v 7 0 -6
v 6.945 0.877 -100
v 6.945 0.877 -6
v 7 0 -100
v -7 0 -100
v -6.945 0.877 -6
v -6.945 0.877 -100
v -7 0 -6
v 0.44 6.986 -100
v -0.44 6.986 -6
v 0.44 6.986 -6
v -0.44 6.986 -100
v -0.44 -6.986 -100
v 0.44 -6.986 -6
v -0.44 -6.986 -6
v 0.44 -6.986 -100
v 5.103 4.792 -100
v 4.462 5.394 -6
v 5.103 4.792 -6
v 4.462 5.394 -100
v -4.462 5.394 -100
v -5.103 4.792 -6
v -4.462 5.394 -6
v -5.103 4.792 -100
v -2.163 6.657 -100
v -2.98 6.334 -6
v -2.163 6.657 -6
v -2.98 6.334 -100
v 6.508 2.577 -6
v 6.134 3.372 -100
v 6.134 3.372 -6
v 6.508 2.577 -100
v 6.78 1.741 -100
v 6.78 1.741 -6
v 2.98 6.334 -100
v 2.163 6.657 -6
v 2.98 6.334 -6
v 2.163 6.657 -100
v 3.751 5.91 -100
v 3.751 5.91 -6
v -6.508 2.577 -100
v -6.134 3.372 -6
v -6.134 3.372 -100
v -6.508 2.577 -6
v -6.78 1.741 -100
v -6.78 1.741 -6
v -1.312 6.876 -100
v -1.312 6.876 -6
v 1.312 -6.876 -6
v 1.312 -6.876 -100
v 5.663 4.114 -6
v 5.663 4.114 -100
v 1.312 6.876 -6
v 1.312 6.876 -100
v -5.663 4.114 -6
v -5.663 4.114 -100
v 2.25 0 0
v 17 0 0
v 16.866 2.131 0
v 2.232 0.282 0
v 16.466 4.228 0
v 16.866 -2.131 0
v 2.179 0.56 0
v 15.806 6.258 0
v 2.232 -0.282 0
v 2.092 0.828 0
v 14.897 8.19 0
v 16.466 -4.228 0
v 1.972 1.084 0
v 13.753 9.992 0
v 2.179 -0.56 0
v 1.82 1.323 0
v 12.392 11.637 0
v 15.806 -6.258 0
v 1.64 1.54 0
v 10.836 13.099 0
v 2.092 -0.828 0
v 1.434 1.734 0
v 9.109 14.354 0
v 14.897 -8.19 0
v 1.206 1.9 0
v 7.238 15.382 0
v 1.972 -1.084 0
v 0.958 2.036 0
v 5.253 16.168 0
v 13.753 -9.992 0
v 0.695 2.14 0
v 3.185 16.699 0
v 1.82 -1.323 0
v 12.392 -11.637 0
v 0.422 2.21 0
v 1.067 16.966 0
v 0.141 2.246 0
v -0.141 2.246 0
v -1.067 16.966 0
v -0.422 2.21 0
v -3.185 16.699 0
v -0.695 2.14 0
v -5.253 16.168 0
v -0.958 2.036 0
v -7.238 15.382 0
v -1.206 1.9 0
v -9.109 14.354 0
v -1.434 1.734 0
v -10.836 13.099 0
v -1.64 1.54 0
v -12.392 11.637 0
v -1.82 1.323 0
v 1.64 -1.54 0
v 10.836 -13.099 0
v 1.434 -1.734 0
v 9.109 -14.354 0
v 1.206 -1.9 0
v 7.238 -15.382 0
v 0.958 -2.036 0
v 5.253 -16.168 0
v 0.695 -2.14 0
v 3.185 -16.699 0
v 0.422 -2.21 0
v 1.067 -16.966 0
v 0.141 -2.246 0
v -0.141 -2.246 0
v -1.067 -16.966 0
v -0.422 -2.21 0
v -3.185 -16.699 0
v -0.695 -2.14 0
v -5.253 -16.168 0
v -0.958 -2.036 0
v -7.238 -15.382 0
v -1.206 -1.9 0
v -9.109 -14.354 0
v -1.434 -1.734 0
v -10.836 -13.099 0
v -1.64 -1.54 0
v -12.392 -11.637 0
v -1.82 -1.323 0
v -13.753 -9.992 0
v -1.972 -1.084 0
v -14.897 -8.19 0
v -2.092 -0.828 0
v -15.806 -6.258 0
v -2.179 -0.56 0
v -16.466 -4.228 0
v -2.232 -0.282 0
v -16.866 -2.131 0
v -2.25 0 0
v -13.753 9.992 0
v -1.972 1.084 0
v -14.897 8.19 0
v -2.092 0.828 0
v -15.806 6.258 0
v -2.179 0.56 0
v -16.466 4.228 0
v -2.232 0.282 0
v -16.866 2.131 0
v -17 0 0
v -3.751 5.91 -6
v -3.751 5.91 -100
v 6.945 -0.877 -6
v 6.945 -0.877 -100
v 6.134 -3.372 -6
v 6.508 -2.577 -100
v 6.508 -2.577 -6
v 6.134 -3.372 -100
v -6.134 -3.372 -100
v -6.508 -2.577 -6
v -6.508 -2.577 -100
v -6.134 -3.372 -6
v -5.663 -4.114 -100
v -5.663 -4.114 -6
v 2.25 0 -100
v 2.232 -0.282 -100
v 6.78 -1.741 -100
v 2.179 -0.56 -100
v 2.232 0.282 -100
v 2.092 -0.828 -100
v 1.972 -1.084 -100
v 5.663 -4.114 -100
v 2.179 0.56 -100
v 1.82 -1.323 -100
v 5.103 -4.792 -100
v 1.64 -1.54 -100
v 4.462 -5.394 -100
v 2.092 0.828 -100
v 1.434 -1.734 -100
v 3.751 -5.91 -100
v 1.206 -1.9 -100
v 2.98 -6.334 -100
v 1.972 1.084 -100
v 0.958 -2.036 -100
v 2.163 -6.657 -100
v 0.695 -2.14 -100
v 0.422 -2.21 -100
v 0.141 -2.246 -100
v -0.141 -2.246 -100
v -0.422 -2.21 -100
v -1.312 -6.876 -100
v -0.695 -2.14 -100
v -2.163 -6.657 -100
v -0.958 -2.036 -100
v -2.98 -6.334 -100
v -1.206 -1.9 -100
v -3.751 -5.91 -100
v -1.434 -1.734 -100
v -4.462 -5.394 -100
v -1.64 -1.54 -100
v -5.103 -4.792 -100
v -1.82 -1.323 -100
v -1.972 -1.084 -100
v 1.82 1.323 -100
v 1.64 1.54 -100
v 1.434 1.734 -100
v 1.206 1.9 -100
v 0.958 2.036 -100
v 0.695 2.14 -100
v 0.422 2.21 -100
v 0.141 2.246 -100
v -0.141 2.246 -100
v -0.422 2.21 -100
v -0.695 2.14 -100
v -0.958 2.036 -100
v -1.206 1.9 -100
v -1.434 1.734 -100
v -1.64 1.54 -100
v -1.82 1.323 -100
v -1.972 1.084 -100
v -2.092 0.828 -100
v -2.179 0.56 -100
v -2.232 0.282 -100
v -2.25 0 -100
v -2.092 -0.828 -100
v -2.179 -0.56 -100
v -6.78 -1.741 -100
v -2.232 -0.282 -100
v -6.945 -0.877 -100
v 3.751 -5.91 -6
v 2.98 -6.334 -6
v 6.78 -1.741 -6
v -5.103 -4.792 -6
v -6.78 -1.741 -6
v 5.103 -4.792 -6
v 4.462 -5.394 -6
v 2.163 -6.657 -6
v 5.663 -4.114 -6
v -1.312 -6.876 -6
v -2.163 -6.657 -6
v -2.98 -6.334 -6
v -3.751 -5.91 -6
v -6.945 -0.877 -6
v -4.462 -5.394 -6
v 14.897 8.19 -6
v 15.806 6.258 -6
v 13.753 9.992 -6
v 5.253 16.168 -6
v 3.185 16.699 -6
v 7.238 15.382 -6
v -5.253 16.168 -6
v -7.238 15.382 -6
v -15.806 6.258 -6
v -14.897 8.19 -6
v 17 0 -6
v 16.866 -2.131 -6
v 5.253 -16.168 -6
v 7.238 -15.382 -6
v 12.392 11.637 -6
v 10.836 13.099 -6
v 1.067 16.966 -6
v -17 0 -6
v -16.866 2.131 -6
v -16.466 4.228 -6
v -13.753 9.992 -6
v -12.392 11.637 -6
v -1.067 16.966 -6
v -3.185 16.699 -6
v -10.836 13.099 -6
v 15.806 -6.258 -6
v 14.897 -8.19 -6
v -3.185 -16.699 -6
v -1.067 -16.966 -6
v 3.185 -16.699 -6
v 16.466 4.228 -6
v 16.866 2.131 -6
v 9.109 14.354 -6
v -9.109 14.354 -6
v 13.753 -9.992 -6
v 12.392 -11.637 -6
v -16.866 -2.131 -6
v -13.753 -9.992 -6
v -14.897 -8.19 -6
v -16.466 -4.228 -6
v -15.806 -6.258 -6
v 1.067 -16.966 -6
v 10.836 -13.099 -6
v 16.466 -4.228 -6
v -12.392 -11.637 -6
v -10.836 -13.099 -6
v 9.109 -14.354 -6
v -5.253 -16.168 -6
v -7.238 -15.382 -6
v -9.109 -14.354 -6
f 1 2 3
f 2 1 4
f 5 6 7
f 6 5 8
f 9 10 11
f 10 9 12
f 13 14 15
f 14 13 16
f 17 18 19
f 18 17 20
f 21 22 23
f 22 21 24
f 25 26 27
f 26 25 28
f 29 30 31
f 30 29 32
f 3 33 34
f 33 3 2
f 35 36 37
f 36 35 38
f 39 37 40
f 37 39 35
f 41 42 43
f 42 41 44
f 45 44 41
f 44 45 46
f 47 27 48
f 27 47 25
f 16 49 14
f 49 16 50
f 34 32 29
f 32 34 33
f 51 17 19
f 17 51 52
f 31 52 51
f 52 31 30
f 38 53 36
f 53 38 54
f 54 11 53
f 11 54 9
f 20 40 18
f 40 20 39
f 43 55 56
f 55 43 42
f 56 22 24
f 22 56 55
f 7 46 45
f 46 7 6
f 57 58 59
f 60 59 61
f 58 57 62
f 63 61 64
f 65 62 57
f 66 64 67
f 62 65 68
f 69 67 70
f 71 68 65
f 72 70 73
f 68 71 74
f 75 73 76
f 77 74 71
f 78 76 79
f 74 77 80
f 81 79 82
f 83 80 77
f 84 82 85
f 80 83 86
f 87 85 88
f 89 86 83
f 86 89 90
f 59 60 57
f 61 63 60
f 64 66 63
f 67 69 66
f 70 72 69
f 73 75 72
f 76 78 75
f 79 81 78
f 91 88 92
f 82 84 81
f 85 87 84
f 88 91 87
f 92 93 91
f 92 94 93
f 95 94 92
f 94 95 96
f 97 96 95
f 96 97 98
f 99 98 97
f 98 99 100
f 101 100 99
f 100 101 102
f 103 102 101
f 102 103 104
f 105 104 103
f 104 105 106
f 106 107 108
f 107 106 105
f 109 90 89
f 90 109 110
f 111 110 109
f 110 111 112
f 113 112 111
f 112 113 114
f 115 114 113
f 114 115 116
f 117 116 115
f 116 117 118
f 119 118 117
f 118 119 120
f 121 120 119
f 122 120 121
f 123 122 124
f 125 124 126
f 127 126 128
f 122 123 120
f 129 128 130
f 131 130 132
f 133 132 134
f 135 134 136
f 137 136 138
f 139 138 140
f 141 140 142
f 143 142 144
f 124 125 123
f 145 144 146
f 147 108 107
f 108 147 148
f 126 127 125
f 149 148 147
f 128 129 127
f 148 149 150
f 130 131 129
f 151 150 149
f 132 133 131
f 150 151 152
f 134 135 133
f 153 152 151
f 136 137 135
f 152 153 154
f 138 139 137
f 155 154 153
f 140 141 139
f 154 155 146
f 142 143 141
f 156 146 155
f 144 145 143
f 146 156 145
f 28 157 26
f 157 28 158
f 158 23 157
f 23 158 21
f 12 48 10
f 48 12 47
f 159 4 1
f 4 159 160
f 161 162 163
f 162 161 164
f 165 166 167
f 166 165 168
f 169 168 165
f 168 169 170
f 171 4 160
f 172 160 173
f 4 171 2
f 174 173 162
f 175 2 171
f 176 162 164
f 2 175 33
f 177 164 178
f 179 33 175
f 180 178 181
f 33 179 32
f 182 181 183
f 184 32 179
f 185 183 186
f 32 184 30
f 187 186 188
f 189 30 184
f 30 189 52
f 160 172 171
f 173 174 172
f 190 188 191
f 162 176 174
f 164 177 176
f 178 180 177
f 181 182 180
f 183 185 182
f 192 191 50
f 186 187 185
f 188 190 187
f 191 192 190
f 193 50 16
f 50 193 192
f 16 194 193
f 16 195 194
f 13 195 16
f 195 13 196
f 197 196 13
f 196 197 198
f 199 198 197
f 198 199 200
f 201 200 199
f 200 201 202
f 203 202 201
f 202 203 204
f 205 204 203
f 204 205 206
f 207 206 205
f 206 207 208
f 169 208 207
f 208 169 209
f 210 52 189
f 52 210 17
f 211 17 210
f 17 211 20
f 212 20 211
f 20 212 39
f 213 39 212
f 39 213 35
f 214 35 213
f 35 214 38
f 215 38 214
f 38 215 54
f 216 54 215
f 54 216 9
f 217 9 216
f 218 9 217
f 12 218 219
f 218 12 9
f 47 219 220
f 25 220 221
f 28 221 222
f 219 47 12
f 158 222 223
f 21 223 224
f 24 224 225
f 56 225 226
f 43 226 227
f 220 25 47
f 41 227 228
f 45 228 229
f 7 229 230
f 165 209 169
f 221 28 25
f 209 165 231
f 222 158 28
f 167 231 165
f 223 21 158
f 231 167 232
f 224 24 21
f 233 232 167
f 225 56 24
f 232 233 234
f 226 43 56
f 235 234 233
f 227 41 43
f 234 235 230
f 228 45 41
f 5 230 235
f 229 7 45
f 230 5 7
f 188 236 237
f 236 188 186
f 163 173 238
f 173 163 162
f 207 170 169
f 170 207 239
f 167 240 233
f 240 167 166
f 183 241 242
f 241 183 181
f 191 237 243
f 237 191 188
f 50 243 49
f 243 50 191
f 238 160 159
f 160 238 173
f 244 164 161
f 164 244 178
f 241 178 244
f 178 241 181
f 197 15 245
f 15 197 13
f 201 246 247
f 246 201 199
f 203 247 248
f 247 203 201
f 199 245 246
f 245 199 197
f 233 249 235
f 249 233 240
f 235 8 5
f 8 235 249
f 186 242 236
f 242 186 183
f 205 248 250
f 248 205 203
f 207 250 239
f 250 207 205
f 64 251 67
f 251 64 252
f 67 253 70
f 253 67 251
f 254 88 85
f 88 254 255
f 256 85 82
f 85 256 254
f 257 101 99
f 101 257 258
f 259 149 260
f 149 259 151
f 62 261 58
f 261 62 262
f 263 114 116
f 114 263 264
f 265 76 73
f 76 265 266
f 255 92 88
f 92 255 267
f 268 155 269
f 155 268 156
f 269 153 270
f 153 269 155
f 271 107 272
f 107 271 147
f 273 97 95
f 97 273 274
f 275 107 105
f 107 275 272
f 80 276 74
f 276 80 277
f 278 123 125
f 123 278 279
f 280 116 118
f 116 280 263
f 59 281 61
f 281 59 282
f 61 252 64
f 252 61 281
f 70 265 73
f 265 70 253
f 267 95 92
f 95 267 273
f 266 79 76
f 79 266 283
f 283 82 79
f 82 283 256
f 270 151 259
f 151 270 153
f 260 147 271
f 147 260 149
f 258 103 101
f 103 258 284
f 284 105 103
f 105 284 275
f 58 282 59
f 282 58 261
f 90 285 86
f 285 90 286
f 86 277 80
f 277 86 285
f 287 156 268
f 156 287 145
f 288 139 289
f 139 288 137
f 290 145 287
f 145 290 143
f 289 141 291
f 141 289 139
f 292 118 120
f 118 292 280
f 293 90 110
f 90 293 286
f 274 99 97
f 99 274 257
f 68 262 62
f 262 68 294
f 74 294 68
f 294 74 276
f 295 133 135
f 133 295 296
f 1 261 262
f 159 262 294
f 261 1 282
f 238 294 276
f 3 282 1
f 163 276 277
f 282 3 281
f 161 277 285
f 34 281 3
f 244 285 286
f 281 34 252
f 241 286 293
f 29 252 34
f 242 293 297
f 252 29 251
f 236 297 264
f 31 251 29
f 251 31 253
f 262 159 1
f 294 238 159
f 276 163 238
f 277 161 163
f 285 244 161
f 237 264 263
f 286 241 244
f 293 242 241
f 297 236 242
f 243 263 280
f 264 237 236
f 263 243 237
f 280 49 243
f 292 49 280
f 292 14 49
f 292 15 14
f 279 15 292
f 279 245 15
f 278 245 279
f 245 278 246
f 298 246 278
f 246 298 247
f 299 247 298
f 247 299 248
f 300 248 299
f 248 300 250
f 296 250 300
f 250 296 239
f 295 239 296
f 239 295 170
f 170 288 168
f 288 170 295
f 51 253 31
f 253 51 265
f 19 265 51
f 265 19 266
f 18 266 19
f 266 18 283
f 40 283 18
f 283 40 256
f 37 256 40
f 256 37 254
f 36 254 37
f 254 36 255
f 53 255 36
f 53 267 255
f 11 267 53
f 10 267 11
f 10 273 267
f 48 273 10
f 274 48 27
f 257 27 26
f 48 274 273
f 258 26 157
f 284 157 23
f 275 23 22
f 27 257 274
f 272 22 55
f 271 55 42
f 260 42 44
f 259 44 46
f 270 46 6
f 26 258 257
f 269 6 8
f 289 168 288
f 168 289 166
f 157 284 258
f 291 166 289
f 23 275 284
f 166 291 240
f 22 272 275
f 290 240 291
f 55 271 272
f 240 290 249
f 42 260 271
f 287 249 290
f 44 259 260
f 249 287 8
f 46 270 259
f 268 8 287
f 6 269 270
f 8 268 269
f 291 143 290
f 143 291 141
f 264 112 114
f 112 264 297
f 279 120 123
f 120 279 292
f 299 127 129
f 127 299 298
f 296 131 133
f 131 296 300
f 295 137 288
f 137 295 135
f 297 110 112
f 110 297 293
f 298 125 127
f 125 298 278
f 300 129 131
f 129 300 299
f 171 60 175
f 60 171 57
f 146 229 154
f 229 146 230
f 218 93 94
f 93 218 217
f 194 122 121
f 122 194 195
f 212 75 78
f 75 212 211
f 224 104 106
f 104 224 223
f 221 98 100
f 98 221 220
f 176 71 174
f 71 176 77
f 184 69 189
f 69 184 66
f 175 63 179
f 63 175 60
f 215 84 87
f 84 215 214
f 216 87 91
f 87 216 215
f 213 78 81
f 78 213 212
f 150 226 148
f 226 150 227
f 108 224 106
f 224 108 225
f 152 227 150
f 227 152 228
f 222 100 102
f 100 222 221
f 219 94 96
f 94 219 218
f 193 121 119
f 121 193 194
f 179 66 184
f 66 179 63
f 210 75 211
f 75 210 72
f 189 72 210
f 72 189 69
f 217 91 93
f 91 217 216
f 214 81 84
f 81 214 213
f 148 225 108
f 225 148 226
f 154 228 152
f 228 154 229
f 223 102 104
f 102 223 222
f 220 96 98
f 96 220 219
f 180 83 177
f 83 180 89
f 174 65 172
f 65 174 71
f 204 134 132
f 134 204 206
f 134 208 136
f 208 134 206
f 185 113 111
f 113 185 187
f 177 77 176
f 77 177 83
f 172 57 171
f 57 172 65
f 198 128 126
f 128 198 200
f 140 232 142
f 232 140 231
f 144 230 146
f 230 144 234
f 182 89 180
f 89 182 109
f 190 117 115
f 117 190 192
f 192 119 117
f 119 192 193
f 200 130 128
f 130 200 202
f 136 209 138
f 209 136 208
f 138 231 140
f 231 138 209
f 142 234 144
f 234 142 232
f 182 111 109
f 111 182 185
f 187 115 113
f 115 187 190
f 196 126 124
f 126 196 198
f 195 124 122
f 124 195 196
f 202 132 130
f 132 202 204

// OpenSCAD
$fn = 50;


difference() {
	union() {
		translate(v = [0, 0, -100.0000000000]) {
			cylinder(h = 100, r = 7.0000000000);
		}
		translate(v = [0, 0, -6.0000000000]) {
			cylinder(h = 6, r = 17.0000000000);
		}
	}
	union() {
		#translate(v = [0, 0, -100]) {
			cylinder(h = 100, r = 2.2500000000);
		}
	}
}
